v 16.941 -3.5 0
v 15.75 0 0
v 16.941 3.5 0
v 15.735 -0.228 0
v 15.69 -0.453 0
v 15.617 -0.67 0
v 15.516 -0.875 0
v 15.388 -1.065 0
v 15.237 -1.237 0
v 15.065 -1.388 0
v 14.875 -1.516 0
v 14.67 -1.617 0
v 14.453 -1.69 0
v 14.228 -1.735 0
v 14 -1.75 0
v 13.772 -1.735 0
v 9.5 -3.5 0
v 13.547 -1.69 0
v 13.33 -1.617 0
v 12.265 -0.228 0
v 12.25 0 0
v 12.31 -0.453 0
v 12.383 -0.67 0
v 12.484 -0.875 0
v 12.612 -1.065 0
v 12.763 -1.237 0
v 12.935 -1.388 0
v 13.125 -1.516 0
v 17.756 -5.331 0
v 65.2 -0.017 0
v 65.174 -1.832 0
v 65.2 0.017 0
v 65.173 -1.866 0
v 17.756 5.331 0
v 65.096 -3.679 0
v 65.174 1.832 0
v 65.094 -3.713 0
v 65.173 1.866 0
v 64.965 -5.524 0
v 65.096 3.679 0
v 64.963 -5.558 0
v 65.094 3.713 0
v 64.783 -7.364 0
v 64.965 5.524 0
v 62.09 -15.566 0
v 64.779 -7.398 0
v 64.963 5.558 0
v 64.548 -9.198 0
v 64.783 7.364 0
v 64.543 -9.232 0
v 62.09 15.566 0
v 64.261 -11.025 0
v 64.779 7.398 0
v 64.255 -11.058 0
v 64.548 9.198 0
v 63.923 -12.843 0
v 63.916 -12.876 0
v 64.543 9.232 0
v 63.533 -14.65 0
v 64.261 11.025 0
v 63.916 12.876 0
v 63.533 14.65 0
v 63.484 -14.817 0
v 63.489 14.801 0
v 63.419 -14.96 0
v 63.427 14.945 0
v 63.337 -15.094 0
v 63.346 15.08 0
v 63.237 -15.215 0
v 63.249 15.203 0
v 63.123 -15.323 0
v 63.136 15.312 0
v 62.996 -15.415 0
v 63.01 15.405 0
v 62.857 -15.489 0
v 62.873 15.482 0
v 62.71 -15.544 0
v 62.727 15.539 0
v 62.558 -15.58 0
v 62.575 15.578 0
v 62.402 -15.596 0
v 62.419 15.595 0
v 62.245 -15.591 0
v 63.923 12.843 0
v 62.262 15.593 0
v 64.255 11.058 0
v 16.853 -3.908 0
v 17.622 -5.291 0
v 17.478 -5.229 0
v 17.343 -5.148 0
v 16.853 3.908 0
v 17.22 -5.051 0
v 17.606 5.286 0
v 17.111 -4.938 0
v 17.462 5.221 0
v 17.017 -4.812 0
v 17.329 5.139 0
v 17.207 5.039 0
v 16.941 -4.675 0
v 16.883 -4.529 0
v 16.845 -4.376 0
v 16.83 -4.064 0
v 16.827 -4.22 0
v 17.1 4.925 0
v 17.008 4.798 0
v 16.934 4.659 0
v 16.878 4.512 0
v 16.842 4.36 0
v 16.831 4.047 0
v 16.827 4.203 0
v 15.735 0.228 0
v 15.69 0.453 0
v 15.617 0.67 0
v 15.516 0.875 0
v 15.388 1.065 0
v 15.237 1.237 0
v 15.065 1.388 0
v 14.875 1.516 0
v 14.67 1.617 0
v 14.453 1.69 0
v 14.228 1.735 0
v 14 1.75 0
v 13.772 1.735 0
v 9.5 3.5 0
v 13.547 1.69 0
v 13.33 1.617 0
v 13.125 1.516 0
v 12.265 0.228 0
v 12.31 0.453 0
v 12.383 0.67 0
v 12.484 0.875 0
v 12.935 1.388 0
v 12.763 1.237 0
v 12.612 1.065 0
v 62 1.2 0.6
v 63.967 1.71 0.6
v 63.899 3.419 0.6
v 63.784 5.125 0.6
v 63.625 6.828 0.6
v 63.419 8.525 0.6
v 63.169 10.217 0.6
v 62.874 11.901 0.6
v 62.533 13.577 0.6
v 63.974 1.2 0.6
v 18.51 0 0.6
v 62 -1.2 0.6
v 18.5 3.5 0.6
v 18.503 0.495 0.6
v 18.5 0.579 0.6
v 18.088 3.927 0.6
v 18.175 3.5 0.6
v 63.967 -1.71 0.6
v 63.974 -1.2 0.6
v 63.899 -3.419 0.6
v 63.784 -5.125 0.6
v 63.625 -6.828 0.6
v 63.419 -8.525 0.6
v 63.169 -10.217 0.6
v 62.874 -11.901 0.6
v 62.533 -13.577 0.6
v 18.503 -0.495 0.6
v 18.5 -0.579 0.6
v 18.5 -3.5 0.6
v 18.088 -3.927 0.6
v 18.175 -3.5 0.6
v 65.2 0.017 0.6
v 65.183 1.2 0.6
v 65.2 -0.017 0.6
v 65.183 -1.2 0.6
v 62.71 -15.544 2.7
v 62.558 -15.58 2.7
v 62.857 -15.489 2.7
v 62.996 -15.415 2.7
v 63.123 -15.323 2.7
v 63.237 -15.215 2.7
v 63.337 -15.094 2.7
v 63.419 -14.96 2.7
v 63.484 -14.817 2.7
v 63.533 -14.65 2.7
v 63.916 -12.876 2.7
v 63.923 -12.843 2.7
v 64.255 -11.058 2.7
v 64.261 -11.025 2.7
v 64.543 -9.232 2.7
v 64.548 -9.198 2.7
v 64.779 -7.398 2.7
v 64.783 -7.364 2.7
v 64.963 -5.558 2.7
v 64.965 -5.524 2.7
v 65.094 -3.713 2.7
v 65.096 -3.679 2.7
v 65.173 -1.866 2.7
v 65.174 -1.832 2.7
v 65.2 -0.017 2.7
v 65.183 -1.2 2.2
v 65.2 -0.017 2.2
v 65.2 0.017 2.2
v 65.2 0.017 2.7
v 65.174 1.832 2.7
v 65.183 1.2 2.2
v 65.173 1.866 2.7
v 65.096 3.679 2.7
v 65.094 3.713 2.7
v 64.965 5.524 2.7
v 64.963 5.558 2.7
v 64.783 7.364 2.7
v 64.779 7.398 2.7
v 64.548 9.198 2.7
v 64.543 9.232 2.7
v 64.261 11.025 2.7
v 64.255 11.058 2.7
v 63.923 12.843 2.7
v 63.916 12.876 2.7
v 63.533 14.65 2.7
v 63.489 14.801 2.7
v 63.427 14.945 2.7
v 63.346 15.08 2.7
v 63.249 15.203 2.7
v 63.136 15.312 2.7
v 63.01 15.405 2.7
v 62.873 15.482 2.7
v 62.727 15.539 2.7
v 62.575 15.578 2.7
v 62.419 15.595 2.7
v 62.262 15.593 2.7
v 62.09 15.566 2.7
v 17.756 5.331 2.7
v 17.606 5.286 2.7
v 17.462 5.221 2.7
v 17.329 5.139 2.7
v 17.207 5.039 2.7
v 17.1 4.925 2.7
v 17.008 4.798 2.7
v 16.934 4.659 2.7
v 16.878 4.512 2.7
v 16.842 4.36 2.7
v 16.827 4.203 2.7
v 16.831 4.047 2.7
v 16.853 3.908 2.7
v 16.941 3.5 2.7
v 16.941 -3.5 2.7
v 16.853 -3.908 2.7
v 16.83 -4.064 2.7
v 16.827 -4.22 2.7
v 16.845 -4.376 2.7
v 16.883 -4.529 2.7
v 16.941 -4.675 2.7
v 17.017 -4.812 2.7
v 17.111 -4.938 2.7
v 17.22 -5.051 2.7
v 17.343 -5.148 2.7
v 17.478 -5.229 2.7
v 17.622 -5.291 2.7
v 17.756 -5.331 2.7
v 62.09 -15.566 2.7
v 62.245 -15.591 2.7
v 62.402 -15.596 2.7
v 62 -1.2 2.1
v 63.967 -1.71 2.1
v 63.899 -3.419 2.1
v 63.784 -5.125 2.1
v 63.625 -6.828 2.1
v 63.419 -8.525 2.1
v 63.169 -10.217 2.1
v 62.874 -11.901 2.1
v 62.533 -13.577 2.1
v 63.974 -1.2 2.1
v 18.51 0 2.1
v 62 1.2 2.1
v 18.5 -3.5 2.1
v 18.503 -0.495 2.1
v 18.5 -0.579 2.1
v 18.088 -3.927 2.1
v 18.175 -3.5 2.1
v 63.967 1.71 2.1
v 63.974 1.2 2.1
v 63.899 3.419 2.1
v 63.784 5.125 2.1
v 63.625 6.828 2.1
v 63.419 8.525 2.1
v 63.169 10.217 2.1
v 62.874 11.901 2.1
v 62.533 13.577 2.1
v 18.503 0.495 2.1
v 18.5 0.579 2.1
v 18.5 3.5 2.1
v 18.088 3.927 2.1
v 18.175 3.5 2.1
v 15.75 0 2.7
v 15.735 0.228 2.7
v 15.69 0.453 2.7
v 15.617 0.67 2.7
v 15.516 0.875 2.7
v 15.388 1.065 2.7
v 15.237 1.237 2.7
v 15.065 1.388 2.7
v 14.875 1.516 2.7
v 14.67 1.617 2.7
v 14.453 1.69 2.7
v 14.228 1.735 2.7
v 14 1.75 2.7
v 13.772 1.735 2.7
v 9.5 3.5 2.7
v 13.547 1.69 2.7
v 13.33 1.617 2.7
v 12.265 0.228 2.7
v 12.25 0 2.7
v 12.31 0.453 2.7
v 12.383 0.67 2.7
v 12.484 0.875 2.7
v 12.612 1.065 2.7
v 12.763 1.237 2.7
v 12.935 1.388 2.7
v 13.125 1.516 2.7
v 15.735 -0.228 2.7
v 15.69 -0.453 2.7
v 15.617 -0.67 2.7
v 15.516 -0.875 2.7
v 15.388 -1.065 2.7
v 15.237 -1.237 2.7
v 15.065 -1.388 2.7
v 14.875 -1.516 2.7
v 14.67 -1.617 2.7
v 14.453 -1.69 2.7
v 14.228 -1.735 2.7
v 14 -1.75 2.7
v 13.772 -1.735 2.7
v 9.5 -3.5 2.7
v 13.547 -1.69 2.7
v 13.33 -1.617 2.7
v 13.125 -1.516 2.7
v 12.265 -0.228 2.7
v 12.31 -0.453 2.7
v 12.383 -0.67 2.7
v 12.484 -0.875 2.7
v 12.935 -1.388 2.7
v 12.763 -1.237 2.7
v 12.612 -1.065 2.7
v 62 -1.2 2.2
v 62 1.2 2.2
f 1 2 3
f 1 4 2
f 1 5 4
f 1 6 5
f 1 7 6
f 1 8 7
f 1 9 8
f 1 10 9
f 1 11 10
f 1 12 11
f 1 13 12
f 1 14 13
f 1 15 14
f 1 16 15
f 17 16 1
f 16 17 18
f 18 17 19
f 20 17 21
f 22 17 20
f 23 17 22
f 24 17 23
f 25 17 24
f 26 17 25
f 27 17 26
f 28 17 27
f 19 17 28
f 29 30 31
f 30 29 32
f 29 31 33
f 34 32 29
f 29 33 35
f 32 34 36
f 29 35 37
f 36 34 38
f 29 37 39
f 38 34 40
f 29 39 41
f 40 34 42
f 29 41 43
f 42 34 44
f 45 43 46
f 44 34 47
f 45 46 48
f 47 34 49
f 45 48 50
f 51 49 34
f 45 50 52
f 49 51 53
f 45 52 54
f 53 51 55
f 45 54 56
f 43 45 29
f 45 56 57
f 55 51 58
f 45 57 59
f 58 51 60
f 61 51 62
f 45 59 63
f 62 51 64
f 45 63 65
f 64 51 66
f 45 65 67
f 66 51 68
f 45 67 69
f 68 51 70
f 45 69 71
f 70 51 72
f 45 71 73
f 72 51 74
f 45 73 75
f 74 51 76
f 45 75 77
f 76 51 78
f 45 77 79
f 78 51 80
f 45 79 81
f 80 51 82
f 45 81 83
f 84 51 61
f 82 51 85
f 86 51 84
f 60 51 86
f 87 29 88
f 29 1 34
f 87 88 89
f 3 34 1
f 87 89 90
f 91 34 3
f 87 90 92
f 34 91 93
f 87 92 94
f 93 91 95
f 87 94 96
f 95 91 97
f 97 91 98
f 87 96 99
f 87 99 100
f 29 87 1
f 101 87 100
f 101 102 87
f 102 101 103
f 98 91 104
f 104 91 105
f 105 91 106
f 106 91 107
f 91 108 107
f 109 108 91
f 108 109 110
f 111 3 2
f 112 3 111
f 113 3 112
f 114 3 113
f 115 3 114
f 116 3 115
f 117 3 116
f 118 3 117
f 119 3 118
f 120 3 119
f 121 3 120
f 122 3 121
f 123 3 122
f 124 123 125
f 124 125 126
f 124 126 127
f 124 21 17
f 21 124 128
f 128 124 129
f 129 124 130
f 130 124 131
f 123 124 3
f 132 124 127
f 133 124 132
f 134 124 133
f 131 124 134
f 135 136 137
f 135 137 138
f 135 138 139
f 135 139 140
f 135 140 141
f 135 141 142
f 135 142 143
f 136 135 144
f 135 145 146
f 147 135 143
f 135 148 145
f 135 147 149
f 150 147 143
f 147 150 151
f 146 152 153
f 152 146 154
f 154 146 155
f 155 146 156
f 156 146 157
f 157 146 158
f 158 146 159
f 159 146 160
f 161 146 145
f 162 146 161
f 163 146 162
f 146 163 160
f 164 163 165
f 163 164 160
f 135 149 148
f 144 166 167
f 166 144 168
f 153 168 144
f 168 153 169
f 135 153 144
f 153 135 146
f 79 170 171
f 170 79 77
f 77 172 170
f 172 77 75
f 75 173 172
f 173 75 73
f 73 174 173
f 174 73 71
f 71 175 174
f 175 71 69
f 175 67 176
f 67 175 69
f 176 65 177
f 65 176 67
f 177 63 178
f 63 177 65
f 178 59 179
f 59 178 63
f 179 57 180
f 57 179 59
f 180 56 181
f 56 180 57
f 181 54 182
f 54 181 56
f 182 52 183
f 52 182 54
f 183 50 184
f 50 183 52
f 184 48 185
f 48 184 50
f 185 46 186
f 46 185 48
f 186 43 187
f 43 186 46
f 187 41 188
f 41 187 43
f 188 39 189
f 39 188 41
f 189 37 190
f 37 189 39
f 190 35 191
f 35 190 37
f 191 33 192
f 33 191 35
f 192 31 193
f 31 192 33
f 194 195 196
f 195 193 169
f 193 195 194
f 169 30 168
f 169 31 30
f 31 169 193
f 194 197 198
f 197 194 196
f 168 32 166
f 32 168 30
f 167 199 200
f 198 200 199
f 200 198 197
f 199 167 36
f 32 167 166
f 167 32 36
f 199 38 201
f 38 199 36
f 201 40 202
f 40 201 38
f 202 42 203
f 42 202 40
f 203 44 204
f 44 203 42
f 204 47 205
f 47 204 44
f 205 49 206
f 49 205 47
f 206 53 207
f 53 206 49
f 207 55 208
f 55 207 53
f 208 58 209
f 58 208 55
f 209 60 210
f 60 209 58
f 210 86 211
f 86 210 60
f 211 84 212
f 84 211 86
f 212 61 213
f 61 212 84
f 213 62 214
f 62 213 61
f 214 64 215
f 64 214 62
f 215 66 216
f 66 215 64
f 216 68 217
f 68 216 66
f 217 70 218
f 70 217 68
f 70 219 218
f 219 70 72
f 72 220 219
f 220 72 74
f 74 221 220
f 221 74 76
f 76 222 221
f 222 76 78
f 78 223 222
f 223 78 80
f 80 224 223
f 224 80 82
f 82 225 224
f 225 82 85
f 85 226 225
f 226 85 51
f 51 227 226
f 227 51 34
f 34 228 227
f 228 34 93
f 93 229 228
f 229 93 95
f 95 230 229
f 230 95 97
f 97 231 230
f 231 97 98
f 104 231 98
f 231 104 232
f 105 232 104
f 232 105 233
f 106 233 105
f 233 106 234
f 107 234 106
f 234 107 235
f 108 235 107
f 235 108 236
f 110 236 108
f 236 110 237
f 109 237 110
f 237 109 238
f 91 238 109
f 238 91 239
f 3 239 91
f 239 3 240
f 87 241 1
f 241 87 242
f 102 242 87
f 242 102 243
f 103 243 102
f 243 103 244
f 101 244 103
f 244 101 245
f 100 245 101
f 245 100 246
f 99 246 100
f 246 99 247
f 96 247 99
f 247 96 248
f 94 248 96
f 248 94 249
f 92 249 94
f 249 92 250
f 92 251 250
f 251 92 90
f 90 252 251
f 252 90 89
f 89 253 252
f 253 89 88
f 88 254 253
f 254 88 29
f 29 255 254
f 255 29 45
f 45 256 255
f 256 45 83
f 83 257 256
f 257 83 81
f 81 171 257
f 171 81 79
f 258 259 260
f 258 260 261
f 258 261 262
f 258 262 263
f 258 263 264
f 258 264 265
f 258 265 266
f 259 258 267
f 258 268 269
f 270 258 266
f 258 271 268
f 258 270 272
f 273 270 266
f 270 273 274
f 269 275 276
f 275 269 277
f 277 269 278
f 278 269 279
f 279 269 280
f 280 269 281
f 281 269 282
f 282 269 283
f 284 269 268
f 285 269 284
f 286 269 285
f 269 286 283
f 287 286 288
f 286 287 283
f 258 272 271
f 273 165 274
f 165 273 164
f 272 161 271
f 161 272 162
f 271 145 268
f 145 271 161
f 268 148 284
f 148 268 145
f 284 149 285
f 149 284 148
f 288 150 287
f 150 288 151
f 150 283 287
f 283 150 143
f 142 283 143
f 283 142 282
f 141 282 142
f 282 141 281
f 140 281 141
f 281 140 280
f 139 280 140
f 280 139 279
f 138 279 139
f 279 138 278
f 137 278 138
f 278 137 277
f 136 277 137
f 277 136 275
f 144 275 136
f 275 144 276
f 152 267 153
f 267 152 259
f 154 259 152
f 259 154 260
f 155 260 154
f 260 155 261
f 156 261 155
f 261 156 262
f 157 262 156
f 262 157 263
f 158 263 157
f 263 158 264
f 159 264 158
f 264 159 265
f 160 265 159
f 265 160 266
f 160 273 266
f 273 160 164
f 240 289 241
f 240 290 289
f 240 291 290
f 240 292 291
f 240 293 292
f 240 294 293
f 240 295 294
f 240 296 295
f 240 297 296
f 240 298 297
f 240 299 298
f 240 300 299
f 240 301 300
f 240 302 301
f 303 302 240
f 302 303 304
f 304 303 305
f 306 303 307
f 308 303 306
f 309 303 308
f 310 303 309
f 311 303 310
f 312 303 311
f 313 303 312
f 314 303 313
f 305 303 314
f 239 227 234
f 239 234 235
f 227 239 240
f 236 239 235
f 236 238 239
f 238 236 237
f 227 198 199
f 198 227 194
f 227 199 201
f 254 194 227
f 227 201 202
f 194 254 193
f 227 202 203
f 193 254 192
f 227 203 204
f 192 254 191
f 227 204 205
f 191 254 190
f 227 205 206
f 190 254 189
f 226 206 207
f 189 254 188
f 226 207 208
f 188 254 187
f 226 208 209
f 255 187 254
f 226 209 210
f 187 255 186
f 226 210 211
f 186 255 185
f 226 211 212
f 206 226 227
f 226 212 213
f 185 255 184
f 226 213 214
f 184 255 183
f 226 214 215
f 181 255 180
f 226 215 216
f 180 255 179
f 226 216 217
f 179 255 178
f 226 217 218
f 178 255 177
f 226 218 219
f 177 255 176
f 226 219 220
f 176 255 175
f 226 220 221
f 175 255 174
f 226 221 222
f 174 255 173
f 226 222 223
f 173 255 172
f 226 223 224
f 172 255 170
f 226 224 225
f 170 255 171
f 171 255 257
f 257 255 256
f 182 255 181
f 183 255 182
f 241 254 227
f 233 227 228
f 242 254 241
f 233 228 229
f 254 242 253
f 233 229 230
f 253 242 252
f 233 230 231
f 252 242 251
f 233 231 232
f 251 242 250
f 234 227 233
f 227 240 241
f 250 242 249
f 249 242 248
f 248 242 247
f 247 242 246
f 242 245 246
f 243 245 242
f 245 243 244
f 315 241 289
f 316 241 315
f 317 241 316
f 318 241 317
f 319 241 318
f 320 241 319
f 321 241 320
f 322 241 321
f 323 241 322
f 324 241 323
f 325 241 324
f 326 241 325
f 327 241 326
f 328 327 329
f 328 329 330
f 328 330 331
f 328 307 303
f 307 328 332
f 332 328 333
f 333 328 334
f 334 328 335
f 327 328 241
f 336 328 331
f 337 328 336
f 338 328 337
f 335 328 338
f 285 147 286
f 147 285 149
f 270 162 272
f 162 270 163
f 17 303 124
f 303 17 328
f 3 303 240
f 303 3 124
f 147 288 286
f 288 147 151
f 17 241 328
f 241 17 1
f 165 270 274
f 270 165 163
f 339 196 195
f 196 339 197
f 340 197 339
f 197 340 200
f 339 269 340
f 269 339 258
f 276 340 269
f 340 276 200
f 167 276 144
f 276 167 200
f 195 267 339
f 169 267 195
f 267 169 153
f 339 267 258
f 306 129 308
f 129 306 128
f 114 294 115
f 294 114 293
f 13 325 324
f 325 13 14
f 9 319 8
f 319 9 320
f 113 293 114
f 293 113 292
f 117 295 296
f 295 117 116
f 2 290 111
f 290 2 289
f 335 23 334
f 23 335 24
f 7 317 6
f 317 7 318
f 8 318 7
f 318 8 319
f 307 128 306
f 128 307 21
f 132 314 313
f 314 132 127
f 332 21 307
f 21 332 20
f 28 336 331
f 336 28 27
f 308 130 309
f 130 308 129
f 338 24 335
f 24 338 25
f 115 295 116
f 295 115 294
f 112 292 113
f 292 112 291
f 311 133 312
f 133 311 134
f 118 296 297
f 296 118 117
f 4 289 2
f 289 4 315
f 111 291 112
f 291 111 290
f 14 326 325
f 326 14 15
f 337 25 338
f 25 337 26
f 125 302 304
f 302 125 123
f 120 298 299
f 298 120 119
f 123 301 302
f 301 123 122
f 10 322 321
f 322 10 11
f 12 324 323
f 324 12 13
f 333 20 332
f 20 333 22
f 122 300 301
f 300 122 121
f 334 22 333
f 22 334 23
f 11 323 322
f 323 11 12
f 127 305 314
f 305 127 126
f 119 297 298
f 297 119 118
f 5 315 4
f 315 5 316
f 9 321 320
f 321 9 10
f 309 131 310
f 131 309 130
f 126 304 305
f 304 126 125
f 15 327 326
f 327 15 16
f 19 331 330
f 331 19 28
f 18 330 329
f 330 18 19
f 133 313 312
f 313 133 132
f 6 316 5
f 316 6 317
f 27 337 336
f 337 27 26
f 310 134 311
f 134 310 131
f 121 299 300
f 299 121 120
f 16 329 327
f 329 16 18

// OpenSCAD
// file: parameters.scad
// =============================================================================
// Gen-AE Dual-rotor HYPER-MICRO copper-max AFPM — WOUND-AWARE (HARD GATE)
// PRIMARY challenger vs Gen-AE. Thinner m2m 5.00 + 170 t + larger window.
// =============================================================================

// --- Wire / wind budget (26 AWG, ~1 lb spool ≈ 390 m bare-equiv) --------------
wire_awg            = 26;
wire_od             = 0.45;     // insulated OD mm
turns               = 170;      // +10 vs Gen-AE 160
fill                = 0.70;
layers_per_face     = 2;        // axial layers proud of EACH flange
wind_build_axial    = layers_per_face * wire_od * fill;   // 0.63 mm
wind_build_radial   = 3 * wire_od * fill;                 // 0.945 mm

// --- Pancake former (bare STL) — thinner web than Gen-AE ---------------------
coil_id_r           = 18.5;     // larger copper window vs Gen-AE 20–62
coil_od_r           = 64.0;
span_deg            = 26.0;     // 12 stations × 30° pitch
former_web          = 1.50;     // print-safe min (thinner than AB 1.6)
flange_t            = 0.60;     // print-safe min (≥0.6)
wall                = 1.2;
slot_w              = 2.4;
mount_hole          = 3.5;
tab_len             = 7.0;

former_bare_h       = former_web + 2 * flange_t;            // 2.70 mm
coil_envelope_h     = former_bare_h + 2 * wind_build_axial; // 3.96 mm

// --- Running clearance (magnet face → WOUND face) EACH side ------------------
run_clear           = 0.52;     // PASS ≥ 0.5 (hyper-micro band)
gap_spacer_h        = run_clear + wind_build_axial;         // 1.15 mm
m2m                 = coil_envelope_h + 2 * run_clear;      // 5.00 mm (beats Gen-AE 5.22)

// --- Mid stator (12 pancakes 3φ; winds proud both faces) ---------------------
coil_stations       = 12;
bay_r_in            = coil_id_r - 2.0 - wind_build_radial;
bay_r_out           = coil_od_r + 2.0 + wind_build_radial;
bay_span            = span_deg + 4.0;
bay_offset          = 2.0;
stator_thick        = former_bare_h;                        // winds proud ±Z
stator_od           = 160.0;    // bumped with carrier_od 156
shaft_clear_stator  = 36.0;
coil_mount_r        = 28.0;

// --- Rotors (×2) — 8×Ø20 + 24×Ø5 Halbach each face ---------------------------
large_pocket_d      = 20.3;
small_pocket_d      = 5.3;
pocket_h            = 5.2;
large_n             = 8;
R_large             = 54.0;
R_small_inner       = 42.0;
R_small_mid         = 54.0;
R_small_outer       = 66.0;
carrier_od          = 156.0;
carrier_thick       = 7.5;
hub_h               = 10.0;
hub_od              = 30.0;
rotor_b_offset_deg  = 22.5;

// --- Modular MAX interface (Gen-E family) ------------------------------------
shaft_bore          = 8.35;
bearing_d           = 21.85;
bearing_h           = 7.2;
m3_clear            = 3.5;
bolt_r_inner        = 36.0;
bolt_n_inner        = 6;
flange_bolt_r       = 72.0;
flange_bolt_n       = 6;
brace_r             = 68.0;
brace_d             = 4.3;
brace_n             = 4;

spacer_pad_od       = 14.0;
spacer_pad_id       = m3_clear;
endbell_od          = 160.0;
endbell_thick       = 8.0;
endbell_shaft_clear = 10.0;

$fn = 64;
// main file
// Gen-AE pancake former — print ×12
// WOUND: wind_build_axial computed in parameters.scad; wind BEFORE assembly
include <parameters.scad>;
$fn = 48;

module sector_2d(r_in, r_out, ang) {
    polygon([
        for (a = [-ang/2 : ang/16 : ang/2]) [r_in*cos(a), r_in*sin(a)],
        for (a = [ang/2 : -ang/16 : -ang/2]) [r_out*cos(a), r_out*sin(a)]
    ]);
}
module flange() {
    linear_extrude(flange_t) offset(r=wall) sector_2d(coil_id_r, coil_od_r, span_deg);
}
difference() {
    union() {
        flange();
        translate([0, 0, flange_t])
            linear_extrude(former_web)
                difference() {
                    offset(r=wall) sector_2d(coil_id_r, coil_od_r, span_deg);
                    sector_2d(coil_id_r + 0.01, coil_od_r - 0.01, span_deg - 1.5);
                }
        translate([0, 0, flange_t + former_web]) flange();
        translate([coil_id_r - tab_len - 2, -3.5, 0])
            cube([tab_len + 2, 7, former_bare_h]);
    }
    translate([coil_od_r - 2, -slot_w/2, flange_t])
        cube([wall + 4, slot_w, former_web + 0.1]);
    translate([coil_id_r - tab_len/2 - 1, 0, -0.1])
        cylinder(d=mount_hole, h=former_bare_h + 1);
}
